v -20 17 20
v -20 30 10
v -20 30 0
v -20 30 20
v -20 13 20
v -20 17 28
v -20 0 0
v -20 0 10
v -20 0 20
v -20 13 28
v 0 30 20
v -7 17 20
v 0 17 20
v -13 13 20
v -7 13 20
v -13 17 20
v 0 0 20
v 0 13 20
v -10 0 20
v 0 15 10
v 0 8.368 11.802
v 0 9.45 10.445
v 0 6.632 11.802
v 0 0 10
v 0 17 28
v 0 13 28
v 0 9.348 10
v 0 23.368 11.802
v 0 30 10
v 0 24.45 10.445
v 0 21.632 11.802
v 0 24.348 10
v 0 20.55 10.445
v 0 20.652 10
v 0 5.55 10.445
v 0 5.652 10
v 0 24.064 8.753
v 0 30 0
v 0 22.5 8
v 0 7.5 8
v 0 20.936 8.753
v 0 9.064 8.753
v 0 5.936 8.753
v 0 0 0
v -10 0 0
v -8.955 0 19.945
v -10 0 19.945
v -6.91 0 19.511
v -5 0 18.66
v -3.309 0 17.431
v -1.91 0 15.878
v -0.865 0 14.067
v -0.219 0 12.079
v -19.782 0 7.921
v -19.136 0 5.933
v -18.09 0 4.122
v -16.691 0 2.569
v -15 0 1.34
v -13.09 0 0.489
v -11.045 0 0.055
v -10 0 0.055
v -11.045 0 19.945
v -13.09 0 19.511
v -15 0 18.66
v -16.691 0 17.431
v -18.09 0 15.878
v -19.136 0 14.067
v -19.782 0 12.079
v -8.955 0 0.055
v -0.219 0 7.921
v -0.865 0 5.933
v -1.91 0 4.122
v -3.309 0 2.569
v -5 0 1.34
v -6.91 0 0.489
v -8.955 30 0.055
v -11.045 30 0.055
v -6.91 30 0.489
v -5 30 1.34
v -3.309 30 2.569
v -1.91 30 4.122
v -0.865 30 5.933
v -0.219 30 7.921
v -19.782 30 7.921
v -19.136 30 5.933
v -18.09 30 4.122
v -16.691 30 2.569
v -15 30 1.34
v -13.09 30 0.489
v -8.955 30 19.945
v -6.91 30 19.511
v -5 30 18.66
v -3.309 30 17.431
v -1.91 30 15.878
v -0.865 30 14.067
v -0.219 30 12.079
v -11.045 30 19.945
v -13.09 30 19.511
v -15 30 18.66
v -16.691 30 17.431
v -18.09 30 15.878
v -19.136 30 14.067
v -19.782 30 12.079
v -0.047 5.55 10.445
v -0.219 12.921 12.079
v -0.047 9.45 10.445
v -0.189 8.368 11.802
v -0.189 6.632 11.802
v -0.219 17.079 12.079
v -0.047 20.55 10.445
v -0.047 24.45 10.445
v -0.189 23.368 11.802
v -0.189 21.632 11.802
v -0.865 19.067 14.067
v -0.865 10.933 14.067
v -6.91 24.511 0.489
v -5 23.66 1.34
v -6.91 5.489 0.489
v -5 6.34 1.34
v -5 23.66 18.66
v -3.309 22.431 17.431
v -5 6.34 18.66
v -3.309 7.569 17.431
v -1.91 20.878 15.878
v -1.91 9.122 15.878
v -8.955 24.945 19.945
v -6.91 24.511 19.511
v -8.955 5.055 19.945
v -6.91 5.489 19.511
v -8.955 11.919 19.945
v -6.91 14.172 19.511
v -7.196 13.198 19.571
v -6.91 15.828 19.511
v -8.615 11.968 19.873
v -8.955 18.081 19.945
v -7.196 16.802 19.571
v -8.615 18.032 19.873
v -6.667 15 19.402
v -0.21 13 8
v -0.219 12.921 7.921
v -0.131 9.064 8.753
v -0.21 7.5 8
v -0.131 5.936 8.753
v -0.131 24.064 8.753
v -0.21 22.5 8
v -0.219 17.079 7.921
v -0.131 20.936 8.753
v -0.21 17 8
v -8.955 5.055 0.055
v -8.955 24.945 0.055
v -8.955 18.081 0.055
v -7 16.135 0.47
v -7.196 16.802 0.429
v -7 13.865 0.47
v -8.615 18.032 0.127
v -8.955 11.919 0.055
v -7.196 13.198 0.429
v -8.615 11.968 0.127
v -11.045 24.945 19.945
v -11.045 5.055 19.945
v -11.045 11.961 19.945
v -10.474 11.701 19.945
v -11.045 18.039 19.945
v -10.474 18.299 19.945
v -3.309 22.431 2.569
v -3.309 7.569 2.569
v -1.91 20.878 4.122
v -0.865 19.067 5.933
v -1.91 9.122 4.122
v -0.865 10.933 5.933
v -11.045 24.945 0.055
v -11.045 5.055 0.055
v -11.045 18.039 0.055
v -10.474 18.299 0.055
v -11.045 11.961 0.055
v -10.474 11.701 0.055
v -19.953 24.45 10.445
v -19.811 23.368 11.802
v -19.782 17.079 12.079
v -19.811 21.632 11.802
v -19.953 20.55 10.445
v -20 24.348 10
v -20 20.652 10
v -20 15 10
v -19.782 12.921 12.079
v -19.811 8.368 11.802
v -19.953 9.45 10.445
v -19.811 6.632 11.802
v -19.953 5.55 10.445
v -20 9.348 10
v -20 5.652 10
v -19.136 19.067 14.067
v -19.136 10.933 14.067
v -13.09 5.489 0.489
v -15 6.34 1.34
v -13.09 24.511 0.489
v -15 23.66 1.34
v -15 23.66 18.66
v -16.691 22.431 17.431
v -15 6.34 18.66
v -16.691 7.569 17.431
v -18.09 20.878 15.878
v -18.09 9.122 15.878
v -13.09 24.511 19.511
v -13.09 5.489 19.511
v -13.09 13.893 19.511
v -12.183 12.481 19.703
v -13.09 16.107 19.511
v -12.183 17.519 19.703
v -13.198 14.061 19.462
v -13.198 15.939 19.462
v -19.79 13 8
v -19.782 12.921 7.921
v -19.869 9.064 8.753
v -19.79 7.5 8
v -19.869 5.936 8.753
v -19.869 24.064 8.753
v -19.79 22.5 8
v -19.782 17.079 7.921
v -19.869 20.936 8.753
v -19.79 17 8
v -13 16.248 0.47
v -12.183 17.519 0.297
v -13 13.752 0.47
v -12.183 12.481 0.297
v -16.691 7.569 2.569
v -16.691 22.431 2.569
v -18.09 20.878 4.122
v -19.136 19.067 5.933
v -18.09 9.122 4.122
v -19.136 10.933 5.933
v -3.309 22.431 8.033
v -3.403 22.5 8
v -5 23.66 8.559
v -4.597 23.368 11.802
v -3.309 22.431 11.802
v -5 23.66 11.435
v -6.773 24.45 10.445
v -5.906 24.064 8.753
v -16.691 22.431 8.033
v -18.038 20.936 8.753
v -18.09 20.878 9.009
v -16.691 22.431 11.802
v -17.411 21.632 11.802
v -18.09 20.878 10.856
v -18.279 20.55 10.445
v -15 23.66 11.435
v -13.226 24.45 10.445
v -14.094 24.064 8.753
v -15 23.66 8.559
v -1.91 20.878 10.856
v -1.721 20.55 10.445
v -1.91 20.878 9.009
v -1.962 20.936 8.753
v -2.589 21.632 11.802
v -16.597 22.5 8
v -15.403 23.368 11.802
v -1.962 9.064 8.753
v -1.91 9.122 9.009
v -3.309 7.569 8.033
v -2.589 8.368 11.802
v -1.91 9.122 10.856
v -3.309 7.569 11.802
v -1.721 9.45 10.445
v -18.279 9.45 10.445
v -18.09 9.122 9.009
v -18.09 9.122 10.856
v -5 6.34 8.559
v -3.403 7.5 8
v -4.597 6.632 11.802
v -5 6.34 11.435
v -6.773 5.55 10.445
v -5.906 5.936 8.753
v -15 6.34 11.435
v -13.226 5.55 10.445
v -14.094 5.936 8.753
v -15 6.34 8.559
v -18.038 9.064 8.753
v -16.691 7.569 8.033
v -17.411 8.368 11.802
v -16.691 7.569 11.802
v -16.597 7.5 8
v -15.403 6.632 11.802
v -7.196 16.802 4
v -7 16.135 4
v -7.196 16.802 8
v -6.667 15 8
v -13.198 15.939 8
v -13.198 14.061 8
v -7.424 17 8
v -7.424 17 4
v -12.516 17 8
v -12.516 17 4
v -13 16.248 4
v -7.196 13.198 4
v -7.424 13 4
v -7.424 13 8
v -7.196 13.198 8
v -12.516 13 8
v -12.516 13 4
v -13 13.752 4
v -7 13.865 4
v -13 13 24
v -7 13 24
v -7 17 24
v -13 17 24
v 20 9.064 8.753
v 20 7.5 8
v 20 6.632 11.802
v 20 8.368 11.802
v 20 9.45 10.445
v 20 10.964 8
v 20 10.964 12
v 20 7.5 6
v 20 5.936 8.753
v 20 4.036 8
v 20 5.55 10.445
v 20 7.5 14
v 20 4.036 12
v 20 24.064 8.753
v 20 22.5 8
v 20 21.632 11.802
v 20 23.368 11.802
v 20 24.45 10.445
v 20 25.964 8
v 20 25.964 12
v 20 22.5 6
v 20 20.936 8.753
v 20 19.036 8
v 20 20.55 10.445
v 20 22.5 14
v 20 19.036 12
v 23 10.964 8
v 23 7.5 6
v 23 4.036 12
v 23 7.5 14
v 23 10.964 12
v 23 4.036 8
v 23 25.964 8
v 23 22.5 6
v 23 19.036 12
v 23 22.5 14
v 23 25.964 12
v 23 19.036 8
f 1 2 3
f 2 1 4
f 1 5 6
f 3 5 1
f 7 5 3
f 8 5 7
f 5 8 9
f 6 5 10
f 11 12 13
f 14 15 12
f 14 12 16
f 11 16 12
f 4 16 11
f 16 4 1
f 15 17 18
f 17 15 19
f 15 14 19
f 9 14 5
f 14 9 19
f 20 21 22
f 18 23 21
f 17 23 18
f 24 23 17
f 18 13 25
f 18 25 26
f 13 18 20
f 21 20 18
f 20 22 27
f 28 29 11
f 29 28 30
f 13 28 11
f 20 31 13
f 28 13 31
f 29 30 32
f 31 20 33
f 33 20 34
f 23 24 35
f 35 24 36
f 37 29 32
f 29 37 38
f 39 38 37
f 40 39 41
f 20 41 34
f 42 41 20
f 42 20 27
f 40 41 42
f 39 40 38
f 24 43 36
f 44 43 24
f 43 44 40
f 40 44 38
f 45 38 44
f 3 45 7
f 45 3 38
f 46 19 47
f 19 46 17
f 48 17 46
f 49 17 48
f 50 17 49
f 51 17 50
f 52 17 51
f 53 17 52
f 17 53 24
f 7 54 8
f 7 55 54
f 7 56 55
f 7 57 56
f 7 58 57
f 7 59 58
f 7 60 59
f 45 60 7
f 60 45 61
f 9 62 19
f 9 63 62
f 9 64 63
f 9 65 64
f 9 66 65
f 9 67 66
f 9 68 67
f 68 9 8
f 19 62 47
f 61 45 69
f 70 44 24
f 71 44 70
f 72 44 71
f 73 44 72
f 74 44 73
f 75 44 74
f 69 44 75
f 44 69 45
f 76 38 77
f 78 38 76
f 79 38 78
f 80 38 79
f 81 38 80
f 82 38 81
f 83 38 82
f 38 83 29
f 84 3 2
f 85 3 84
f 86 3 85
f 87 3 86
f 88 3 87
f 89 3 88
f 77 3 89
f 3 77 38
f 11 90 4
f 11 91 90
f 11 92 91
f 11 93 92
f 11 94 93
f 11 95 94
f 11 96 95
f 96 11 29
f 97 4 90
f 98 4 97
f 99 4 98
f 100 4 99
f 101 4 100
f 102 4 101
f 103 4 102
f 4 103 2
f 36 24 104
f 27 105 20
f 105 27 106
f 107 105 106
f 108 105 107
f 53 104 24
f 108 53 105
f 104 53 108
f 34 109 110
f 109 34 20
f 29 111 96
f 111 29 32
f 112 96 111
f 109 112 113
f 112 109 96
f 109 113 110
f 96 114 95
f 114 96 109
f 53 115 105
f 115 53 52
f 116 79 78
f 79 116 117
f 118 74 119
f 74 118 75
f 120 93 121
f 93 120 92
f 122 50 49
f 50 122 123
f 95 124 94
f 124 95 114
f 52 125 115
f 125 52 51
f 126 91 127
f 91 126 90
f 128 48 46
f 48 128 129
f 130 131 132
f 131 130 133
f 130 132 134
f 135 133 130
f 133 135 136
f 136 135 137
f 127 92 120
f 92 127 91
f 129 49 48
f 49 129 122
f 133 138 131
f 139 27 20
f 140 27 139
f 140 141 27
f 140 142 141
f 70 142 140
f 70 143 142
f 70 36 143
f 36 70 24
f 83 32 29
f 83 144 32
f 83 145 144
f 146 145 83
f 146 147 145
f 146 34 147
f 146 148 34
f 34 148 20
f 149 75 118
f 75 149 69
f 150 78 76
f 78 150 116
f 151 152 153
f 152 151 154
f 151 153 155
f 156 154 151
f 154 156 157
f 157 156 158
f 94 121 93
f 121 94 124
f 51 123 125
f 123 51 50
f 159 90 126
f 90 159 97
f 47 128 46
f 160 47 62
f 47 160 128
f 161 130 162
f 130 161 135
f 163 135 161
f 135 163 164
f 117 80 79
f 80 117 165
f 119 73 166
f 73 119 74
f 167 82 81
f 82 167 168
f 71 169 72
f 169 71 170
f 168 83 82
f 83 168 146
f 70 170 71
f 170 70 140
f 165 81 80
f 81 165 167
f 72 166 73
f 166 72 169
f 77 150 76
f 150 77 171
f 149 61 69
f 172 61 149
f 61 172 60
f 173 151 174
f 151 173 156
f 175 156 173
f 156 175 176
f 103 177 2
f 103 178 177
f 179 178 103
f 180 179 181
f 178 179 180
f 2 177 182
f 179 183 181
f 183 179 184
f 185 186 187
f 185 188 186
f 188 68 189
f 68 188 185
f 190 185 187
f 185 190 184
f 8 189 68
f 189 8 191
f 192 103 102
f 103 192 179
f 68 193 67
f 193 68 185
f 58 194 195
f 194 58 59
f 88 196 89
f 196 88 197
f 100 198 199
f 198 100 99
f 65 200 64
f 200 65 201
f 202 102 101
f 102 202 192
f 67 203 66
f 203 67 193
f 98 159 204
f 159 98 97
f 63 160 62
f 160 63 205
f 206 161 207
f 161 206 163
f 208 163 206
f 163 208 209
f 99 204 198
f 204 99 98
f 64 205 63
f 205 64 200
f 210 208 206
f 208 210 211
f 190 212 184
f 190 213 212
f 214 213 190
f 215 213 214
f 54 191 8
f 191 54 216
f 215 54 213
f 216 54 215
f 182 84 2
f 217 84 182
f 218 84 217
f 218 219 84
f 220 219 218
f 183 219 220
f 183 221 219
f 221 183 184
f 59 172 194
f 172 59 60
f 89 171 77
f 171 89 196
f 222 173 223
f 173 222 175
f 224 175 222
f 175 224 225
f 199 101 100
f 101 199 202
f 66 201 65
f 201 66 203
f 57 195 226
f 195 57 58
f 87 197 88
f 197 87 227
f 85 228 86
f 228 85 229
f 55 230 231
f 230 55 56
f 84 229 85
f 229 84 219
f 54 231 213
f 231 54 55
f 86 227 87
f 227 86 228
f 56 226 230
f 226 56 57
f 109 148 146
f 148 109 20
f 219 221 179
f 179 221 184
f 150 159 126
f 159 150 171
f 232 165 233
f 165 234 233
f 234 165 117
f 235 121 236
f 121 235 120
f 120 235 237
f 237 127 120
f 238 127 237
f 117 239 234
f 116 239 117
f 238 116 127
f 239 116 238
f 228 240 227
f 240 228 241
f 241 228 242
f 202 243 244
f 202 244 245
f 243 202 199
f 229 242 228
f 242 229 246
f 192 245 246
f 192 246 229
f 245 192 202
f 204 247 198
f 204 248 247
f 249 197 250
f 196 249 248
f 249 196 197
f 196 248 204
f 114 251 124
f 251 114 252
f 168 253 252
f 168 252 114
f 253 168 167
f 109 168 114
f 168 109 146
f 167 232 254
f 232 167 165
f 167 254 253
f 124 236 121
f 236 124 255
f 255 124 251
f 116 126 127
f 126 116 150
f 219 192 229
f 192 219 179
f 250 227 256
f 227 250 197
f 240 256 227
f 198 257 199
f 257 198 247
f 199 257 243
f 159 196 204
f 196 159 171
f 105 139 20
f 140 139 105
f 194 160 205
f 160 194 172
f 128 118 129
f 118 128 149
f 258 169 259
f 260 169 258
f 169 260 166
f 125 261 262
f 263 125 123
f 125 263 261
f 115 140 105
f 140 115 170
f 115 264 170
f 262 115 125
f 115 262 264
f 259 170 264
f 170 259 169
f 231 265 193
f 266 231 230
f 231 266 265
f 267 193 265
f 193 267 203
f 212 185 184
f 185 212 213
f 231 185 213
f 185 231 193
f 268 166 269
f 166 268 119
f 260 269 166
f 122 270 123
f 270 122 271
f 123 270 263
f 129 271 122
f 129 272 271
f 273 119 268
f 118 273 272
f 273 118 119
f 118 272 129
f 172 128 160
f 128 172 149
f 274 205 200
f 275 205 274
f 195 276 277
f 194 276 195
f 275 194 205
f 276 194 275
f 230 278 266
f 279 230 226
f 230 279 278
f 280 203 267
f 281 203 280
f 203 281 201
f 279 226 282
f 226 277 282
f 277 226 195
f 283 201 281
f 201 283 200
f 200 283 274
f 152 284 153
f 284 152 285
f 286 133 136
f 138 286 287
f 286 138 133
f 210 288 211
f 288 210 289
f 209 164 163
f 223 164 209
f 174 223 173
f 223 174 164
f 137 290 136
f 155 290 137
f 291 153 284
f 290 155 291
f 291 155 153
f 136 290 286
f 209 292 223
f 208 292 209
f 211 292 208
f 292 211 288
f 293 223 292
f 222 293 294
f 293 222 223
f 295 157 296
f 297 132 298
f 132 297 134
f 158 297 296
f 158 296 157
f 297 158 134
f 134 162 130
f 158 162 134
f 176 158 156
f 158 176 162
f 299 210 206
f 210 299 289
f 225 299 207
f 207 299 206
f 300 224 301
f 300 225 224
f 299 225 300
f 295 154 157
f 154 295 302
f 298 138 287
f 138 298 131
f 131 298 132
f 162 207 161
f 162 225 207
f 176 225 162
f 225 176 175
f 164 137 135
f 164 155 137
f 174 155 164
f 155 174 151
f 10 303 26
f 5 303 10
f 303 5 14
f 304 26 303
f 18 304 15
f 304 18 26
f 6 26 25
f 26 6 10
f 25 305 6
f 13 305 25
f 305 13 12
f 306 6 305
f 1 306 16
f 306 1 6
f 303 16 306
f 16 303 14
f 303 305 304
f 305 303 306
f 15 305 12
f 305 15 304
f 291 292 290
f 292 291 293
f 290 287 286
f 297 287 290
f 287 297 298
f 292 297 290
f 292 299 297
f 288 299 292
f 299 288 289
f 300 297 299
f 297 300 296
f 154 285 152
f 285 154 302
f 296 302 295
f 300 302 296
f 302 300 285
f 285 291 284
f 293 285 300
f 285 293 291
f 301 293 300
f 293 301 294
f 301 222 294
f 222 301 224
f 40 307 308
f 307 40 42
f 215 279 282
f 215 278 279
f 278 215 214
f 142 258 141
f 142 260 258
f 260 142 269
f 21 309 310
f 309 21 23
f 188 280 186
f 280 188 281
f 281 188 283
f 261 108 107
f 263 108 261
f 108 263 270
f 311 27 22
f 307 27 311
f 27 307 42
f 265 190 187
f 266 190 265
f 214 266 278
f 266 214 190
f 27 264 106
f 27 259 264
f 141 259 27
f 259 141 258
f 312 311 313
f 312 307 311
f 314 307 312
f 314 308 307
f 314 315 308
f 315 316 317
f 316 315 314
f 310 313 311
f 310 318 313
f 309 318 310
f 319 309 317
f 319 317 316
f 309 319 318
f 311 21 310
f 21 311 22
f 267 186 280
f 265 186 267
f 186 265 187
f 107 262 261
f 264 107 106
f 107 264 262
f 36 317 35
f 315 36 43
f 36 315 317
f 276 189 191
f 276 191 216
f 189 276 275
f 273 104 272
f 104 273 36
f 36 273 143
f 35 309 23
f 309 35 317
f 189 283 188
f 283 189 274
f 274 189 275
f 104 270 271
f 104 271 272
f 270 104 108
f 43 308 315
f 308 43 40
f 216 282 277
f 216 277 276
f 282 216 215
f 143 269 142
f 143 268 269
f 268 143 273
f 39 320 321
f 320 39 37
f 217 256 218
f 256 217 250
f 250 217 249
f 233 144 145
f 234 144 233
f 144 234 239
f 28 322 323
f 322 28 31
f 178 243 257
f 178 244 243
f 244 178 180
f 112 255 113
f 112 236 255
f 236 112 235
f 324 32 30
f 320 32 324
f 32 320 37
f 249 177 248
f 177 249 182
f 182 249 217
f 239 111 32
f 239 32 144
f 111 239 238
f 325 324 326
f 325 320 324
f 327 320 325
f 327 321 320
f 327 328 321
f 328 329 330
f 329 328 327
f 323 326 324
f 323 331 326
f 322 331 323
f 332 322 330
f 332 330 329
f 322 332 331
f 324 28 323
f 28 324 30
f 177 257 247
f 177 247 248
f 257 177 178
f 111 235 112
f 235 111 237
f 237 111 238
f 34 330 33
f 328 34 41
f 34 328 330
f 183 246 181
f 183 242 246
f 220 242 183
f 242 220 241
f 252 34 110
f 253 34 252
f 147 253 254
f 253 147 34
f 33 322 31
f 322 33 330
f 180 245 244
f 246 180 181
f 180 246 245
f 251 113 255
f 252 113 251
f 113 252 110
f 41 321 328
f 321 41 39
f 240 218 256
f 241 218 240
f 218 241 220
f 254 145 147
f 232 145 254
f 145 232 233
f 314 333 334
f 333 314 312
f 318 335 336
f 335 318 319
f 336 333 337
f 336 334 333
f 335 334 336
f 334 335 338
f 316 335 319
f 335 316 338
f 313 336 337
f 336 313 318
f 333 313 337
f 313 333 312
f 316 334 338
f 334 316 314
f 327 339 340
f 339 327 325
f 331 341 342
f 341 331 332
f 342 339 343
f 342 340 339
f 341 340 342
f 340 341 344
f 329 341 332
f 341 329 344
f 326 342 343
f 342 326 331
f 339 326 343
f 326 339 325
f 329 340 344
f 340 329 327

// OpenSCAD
// ========== Parameters ==========
jaw_width = 20;
jaw_height = 20;
jaw_depth = 30;
groove_radius = 10;
slot_width = 6;
slot_depth = 10;
core_radius = 10;
core_height = 20;
arm_thickness = 4;
bolt_radius = 2;
bolt_length = 40;
nut_radius = 4;
nut_height = 3;

// ========== Modules ==========

// Left Jaw Block
module left_jaw_block() {
    difference() {
        cube([jaw_width, jaw_depth, jaw_height]);
        // Semi-circular groove
        translate([jaw_width/2, jaw_depth/2, jaw_height/2])
            rotate([90,0,0])
                cylinder(h=jaw_depth, r=groove_radius, center=true);
        // Vertical slot
        translate([(jaw_width-slot_width)/2, 0, jaw_height/2])
            cube([slot_width, slot_depth, jaw_height], center=true);
        // Bolt holes
        for (y = [jaw_depth*0.25, jaw_depth*0.75])
            translate([jaw_width/2, y, jaw_height/2])
                rotate([90,0,0])
                    cylinder(h=jaw_width+2, r=bolt_radius, center=true);
    }
}

// Right Jaw Block (mirrored)
module right_jaw_block() {
    mirror([1,0,0])
        left_jaw_block();
}

// Central Cylindrical Core
module central_cylindrical_core() {
    difference() {
        cylinder(h=core_height, r=core_radius, center=true);
        // Central bore
        cylinder(h=core_height+2, r=core_radius/3, center=true);
    }
}

// Clamping Arm (generic)
module clamping_arm(mirrorY=false) {
    translate([0, 0, 0])
    rotate([0, 0, mirrorY ? 180 : 0])
    difference() {
        hull() {
            translate([-core_radius, -arm_thickness/2, 0])
                cube([2*core_radius, arm_thickness, arm_thickness]);
            translate([-core_radius, -arm_thickness/2, arm_thickness])
                cube([2*core_radius, arm_thickness, arm_thickness]);
        }
        // Hook cutout
        translate([-slot_width/2, -arm_thickness, 0])
            cube([slot_width, 2*arm_thickness, arm_thickness]);
    }
}

// Bolt
module bolt() {
    union() {
        // Shaft
        cylinder(h=bolt_length, r=bolt_radius);
        // Head
        translate([0,0,bolt_length])
            cylinder(h=2, r=bolt_radius*1.5);
    }
}

// Nut
module nut() {
    cylinder(h=nut_height, r=nut_radius, $fn=6);
}

// ========== Assembly ==========

module assembly() {
    // Layer 2: Jaw blocks and core
    translate([-jaw_width, 0, 0])
        left_jaw_block();
    translate([0, 0, 0])
        right_jaw_block();
    translate([-jaw_width/2, jaw_depth/2, jaw_height/2])
        central_cylindrical_core();

    // Layer 1: Upper clamping arm
    translate([-jaw_width/2, jaw_depth/2, jaw_height])
        clamping_arm();

    // Layer 3: Lower clamping arm
    translate([-jaw_width/2, jaw_depth/2, 0])
        clamping_arm(mirrorY=true);

    // Layer 4: Bolts and nuts
    for (y = [jaw_depth*0.25, jaw_depth*0.75]) {
        // Bolt
        translate([-jaw_width, y, jaw_height/2])
            rotate([0,90,0])
                bolt();
        // Nut
        translate([jaw_width, y, jaw_height/2])
            rotate([0,90,0])
                nut();
    }
}

// Call the assembly
assembly();
